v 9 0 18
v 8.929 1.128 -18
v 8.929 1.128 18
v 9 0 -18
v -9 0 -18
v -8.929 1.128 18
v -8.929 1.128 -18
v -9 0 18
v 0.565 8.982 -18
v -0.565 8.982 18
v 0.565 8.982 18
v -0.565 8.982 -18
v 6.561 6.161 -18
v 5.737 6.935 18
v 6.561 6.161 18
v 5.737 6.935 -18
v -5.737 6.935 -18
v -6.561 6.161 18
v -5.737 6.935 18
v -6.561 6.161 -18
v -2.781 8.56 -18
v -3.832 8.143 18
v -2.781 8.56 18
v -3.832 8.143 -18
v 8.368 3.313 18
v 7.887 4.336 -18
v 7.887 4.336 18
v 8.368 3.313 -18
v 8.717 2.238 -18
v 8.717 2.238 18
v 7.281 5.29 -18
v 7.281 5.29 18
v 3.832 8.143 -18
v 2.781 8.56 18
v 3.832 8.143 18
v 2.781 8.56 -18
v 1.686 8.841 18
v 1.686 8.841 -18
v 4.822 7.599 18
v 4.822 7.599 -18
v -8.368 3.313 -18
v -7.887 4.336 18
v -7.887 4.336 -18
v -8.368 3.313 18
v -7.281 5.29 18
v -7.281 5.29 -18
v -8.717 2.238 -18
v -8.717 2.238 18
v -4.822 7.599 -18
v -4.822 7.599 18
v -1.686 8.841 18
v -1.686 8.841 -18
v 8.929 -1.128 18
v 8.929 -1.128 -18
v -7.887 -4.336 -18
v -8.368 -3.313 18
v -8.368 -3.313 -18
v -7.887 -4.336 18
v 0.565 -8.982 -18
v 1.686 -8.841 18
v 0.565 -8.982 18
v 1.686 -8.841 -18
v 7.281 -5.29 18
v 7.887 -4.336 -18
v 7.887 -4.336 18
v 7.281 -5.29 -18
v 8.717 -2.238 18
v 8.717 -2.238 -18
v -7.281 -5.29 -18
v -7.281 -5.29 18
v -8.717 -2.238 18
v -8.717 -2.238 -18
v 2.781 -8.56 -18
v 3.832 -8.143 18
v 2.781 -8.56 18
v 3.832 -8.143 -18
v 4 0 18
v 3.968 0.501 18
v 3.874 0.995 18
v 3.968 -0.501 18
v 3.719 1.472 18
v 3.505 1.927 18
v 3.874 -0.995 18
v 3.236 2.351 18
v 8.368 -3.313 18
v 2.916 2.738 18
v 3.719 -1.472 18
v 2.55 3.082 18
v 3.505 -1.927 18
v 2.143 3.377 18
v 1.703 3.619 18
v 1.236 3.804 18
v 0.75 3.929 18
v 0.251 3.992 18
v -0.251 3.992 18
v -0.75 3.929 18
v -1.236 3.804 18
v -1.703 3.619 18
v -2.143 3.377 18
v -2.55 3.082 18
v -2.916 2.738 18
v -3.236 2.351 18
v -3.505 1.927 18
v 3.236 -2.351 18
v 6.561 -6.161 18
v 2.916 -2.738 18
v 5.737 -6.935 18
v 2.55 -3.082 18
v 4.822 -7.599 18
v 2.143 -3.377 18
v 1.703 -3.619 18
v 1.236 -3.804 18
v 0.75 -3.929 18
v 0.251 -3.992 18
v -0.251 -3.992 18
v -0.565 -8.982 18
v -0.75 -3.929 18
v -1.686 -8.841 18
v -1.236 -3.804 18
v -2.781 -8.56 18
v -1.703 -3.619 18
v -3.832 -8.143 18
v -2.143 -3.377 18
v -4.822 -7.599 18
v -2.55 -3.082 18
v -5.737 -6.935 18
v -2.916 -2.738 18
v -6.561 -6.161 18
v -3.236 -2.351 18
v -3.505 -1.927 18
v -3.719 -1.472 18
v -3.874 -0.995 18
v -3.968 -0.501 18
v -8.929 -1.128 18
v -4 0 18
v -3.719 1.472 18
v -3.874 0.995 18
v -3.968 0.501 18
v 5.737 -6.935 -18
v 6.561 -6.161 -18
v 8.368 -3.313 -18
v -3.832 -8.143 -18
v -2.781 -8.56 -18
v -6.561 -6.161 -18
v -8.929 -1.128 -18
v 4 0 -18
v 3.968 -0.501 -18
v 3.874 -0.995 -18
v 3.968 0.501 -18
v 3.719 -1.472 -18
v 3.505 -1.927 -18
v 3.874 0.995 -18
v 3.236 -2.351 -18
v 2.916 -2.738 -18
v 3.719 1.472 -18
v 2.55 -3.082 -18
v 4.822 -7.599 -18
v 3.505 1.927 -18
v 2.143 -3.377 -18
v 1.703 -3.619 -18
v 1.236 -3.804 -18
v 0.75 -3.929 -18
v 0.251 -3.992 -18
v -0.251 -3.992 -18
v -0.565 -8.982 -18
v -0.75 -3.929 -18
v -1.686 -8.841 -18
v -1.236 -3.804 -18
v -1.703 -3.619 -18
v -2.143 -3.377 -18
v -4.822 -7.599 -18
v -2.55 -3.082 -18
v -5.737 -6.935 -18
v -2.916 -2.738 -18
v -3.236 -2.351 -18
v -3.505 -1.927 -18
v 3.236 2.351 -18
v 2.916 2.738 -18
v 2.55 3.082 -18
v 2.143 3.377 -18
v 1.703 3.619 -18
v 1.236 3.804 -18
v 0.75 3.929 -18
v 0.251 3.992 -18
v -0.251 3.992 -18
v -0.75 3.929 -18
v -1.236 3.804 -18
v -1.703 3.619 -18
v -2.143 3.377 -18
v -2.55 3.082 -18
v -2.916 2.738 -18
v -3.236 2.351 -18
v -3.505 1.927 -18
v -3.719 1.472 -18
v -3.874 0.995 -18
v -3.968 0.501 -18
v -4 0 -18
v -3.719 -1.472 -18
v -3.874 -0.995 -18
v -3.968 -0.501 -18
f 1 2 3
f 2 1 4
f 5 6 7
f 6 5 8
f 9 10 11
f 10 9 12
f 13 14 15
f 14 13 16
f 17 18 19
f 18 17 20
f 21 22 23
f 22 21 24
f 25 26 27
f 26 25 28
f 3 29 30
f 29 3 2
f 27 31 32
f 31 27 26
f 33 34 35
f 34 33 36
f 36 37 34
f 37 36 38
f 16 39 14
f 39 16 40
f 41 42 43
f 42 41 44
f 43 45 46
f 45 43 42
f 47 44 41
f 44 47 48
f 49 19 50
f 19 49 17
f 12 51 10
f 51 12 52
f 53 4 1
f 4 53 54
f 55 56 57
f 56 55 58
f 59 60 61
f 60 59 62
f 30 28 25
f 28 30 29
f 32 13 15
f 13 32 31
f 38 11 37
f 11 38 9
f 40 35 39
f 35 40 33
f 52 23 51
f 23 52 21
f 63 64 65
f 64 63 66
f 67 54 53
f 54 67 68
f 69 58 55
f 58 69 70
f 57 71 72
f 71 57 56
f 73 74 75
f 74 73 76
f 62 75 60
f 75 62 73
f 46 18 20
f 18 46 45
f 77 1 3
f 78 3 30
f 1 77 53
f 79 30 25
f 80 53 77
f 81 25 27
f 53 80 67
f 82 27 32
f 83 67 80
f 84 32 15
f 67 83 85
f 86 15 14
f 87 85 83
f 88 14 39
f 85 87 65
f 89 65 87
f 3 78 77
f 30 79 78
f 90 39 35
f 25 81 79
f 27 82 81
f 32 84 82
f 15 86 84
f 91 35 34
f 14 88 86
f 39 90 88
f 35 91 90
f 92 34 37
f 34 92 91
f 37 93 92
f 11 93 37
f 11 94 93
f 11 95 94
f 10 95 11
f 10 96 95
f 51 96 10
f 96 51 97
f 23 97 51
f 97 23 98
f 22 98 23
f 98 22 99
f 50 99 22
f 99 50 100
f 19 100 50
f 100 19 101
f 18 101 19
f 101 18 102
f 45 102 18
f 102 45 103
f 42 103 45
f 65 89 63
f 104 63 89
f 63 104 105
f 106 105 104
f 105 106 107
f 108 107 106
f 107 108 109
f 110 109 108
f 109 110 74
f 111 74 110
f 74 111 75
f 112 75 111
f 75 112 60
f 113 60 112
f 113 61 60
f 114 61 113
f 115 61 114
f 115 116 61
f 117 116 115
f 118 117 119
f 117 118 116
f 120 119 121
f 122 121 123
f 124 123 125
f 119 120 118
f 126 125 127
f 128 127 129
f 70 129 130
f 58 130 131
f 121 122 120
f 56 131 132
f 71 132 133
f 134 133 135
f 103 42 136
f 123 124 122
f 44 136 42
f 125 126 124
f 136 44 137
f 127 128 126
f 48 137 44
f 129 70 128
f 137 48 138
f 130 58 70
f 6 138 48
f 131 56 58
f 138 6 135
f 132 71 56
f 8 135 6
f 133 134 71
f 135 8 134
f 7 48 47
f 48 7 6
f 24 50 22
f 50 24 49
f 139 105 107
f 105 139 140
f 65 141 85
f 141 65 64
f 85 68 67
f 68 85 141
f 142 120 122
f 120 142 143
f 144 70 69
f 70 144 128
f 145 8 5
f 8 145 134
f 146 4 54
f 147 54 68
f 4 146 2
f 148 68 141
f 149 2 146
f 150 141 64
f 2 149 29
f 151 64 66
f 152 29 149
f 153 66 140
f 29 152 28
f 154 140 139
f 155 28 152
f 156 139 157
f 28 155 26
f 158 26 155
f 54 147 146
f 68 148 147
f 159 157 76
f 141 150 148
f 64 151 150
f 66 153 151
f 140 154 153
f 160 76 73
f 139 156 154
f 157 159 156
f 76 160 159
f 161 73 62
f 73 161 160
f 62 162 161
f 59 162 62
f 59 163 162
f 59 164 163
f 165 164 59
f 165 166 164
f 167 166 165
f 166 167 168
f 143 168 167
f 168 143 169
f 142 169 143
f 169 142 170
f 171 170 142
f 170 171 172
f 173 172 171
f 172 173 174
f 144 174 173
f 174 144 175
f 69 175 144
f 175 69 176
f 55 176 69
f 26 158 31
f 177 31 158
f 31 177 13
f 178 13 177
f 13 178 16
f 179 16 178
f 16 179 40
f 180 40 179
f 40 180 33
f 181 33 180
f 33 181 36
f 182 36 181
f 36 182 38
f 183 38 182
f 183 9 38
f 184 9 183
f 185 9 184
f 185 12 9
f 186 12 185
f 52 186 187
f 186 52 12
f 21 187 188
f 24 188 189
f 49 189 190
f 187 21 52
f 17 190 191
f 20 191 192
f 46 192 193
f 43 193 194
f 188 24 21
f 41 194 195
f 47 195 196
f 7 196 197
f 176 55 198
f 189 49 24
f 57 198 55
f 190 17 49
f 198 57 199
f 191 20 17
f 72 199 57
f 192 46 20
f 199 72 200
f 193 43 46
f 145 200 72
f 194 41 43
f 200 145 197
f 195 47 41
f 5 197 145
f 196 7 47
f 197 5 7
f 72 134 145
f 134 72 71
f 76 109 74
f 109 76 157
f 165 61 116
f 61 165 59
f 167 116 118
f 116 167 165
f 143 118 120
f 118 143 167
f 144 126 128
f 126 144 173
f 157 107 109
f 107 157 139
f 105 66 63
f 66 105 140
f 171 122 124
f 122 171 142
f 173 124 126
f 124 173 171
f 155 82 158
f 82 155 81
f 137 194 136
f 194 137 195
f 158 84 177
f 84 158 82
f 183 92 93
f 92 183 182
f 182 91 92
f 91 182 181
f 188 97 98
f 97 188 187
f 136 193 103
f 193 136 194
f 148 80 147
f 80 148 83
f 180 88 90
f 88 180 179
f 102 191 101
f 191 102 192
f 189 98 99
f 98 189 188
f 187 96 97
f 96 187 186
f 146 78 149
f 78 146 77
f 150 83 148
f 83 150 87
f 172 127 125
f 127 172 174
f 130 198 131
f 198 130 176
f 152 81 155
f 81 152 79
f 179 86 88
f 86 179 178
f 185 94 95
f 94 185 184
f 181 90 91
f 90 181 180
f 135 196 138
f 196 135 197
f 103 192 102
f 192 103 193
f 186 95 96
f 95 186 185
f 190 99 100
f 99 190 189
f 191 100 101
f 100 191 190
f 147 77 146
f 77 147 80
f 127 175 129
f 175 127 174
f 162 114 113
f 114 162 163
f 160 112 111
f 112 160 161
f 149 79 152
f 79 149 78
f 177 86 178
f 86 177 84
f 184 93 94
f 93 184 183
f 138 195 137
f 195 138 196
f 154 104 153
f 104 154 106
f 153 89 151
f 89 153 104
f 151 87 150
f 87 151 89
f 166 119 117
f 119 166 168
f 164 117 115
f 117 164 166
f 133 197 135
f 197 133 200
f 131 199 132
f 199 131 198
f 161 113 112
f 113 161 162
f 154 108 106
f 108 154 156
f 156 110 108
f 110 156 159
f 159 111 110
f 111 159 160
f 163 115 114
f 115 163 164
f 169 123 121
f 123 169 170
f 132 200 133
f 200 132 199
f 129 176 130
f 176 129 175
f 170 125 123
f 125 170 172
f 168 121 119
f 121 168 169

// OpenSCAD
$fn = 50;


difference() {
	union() {
		translate(v = [0, 0, -18.0000000000]) {
			cylinder(h = 36, r = 9.0000000000);
		}
	}
	union() {
		translate(v = [0, 0, -100.0000000000]) {
			cylinder(h = 200, r = 4.0000000000);
		}
	}
}
